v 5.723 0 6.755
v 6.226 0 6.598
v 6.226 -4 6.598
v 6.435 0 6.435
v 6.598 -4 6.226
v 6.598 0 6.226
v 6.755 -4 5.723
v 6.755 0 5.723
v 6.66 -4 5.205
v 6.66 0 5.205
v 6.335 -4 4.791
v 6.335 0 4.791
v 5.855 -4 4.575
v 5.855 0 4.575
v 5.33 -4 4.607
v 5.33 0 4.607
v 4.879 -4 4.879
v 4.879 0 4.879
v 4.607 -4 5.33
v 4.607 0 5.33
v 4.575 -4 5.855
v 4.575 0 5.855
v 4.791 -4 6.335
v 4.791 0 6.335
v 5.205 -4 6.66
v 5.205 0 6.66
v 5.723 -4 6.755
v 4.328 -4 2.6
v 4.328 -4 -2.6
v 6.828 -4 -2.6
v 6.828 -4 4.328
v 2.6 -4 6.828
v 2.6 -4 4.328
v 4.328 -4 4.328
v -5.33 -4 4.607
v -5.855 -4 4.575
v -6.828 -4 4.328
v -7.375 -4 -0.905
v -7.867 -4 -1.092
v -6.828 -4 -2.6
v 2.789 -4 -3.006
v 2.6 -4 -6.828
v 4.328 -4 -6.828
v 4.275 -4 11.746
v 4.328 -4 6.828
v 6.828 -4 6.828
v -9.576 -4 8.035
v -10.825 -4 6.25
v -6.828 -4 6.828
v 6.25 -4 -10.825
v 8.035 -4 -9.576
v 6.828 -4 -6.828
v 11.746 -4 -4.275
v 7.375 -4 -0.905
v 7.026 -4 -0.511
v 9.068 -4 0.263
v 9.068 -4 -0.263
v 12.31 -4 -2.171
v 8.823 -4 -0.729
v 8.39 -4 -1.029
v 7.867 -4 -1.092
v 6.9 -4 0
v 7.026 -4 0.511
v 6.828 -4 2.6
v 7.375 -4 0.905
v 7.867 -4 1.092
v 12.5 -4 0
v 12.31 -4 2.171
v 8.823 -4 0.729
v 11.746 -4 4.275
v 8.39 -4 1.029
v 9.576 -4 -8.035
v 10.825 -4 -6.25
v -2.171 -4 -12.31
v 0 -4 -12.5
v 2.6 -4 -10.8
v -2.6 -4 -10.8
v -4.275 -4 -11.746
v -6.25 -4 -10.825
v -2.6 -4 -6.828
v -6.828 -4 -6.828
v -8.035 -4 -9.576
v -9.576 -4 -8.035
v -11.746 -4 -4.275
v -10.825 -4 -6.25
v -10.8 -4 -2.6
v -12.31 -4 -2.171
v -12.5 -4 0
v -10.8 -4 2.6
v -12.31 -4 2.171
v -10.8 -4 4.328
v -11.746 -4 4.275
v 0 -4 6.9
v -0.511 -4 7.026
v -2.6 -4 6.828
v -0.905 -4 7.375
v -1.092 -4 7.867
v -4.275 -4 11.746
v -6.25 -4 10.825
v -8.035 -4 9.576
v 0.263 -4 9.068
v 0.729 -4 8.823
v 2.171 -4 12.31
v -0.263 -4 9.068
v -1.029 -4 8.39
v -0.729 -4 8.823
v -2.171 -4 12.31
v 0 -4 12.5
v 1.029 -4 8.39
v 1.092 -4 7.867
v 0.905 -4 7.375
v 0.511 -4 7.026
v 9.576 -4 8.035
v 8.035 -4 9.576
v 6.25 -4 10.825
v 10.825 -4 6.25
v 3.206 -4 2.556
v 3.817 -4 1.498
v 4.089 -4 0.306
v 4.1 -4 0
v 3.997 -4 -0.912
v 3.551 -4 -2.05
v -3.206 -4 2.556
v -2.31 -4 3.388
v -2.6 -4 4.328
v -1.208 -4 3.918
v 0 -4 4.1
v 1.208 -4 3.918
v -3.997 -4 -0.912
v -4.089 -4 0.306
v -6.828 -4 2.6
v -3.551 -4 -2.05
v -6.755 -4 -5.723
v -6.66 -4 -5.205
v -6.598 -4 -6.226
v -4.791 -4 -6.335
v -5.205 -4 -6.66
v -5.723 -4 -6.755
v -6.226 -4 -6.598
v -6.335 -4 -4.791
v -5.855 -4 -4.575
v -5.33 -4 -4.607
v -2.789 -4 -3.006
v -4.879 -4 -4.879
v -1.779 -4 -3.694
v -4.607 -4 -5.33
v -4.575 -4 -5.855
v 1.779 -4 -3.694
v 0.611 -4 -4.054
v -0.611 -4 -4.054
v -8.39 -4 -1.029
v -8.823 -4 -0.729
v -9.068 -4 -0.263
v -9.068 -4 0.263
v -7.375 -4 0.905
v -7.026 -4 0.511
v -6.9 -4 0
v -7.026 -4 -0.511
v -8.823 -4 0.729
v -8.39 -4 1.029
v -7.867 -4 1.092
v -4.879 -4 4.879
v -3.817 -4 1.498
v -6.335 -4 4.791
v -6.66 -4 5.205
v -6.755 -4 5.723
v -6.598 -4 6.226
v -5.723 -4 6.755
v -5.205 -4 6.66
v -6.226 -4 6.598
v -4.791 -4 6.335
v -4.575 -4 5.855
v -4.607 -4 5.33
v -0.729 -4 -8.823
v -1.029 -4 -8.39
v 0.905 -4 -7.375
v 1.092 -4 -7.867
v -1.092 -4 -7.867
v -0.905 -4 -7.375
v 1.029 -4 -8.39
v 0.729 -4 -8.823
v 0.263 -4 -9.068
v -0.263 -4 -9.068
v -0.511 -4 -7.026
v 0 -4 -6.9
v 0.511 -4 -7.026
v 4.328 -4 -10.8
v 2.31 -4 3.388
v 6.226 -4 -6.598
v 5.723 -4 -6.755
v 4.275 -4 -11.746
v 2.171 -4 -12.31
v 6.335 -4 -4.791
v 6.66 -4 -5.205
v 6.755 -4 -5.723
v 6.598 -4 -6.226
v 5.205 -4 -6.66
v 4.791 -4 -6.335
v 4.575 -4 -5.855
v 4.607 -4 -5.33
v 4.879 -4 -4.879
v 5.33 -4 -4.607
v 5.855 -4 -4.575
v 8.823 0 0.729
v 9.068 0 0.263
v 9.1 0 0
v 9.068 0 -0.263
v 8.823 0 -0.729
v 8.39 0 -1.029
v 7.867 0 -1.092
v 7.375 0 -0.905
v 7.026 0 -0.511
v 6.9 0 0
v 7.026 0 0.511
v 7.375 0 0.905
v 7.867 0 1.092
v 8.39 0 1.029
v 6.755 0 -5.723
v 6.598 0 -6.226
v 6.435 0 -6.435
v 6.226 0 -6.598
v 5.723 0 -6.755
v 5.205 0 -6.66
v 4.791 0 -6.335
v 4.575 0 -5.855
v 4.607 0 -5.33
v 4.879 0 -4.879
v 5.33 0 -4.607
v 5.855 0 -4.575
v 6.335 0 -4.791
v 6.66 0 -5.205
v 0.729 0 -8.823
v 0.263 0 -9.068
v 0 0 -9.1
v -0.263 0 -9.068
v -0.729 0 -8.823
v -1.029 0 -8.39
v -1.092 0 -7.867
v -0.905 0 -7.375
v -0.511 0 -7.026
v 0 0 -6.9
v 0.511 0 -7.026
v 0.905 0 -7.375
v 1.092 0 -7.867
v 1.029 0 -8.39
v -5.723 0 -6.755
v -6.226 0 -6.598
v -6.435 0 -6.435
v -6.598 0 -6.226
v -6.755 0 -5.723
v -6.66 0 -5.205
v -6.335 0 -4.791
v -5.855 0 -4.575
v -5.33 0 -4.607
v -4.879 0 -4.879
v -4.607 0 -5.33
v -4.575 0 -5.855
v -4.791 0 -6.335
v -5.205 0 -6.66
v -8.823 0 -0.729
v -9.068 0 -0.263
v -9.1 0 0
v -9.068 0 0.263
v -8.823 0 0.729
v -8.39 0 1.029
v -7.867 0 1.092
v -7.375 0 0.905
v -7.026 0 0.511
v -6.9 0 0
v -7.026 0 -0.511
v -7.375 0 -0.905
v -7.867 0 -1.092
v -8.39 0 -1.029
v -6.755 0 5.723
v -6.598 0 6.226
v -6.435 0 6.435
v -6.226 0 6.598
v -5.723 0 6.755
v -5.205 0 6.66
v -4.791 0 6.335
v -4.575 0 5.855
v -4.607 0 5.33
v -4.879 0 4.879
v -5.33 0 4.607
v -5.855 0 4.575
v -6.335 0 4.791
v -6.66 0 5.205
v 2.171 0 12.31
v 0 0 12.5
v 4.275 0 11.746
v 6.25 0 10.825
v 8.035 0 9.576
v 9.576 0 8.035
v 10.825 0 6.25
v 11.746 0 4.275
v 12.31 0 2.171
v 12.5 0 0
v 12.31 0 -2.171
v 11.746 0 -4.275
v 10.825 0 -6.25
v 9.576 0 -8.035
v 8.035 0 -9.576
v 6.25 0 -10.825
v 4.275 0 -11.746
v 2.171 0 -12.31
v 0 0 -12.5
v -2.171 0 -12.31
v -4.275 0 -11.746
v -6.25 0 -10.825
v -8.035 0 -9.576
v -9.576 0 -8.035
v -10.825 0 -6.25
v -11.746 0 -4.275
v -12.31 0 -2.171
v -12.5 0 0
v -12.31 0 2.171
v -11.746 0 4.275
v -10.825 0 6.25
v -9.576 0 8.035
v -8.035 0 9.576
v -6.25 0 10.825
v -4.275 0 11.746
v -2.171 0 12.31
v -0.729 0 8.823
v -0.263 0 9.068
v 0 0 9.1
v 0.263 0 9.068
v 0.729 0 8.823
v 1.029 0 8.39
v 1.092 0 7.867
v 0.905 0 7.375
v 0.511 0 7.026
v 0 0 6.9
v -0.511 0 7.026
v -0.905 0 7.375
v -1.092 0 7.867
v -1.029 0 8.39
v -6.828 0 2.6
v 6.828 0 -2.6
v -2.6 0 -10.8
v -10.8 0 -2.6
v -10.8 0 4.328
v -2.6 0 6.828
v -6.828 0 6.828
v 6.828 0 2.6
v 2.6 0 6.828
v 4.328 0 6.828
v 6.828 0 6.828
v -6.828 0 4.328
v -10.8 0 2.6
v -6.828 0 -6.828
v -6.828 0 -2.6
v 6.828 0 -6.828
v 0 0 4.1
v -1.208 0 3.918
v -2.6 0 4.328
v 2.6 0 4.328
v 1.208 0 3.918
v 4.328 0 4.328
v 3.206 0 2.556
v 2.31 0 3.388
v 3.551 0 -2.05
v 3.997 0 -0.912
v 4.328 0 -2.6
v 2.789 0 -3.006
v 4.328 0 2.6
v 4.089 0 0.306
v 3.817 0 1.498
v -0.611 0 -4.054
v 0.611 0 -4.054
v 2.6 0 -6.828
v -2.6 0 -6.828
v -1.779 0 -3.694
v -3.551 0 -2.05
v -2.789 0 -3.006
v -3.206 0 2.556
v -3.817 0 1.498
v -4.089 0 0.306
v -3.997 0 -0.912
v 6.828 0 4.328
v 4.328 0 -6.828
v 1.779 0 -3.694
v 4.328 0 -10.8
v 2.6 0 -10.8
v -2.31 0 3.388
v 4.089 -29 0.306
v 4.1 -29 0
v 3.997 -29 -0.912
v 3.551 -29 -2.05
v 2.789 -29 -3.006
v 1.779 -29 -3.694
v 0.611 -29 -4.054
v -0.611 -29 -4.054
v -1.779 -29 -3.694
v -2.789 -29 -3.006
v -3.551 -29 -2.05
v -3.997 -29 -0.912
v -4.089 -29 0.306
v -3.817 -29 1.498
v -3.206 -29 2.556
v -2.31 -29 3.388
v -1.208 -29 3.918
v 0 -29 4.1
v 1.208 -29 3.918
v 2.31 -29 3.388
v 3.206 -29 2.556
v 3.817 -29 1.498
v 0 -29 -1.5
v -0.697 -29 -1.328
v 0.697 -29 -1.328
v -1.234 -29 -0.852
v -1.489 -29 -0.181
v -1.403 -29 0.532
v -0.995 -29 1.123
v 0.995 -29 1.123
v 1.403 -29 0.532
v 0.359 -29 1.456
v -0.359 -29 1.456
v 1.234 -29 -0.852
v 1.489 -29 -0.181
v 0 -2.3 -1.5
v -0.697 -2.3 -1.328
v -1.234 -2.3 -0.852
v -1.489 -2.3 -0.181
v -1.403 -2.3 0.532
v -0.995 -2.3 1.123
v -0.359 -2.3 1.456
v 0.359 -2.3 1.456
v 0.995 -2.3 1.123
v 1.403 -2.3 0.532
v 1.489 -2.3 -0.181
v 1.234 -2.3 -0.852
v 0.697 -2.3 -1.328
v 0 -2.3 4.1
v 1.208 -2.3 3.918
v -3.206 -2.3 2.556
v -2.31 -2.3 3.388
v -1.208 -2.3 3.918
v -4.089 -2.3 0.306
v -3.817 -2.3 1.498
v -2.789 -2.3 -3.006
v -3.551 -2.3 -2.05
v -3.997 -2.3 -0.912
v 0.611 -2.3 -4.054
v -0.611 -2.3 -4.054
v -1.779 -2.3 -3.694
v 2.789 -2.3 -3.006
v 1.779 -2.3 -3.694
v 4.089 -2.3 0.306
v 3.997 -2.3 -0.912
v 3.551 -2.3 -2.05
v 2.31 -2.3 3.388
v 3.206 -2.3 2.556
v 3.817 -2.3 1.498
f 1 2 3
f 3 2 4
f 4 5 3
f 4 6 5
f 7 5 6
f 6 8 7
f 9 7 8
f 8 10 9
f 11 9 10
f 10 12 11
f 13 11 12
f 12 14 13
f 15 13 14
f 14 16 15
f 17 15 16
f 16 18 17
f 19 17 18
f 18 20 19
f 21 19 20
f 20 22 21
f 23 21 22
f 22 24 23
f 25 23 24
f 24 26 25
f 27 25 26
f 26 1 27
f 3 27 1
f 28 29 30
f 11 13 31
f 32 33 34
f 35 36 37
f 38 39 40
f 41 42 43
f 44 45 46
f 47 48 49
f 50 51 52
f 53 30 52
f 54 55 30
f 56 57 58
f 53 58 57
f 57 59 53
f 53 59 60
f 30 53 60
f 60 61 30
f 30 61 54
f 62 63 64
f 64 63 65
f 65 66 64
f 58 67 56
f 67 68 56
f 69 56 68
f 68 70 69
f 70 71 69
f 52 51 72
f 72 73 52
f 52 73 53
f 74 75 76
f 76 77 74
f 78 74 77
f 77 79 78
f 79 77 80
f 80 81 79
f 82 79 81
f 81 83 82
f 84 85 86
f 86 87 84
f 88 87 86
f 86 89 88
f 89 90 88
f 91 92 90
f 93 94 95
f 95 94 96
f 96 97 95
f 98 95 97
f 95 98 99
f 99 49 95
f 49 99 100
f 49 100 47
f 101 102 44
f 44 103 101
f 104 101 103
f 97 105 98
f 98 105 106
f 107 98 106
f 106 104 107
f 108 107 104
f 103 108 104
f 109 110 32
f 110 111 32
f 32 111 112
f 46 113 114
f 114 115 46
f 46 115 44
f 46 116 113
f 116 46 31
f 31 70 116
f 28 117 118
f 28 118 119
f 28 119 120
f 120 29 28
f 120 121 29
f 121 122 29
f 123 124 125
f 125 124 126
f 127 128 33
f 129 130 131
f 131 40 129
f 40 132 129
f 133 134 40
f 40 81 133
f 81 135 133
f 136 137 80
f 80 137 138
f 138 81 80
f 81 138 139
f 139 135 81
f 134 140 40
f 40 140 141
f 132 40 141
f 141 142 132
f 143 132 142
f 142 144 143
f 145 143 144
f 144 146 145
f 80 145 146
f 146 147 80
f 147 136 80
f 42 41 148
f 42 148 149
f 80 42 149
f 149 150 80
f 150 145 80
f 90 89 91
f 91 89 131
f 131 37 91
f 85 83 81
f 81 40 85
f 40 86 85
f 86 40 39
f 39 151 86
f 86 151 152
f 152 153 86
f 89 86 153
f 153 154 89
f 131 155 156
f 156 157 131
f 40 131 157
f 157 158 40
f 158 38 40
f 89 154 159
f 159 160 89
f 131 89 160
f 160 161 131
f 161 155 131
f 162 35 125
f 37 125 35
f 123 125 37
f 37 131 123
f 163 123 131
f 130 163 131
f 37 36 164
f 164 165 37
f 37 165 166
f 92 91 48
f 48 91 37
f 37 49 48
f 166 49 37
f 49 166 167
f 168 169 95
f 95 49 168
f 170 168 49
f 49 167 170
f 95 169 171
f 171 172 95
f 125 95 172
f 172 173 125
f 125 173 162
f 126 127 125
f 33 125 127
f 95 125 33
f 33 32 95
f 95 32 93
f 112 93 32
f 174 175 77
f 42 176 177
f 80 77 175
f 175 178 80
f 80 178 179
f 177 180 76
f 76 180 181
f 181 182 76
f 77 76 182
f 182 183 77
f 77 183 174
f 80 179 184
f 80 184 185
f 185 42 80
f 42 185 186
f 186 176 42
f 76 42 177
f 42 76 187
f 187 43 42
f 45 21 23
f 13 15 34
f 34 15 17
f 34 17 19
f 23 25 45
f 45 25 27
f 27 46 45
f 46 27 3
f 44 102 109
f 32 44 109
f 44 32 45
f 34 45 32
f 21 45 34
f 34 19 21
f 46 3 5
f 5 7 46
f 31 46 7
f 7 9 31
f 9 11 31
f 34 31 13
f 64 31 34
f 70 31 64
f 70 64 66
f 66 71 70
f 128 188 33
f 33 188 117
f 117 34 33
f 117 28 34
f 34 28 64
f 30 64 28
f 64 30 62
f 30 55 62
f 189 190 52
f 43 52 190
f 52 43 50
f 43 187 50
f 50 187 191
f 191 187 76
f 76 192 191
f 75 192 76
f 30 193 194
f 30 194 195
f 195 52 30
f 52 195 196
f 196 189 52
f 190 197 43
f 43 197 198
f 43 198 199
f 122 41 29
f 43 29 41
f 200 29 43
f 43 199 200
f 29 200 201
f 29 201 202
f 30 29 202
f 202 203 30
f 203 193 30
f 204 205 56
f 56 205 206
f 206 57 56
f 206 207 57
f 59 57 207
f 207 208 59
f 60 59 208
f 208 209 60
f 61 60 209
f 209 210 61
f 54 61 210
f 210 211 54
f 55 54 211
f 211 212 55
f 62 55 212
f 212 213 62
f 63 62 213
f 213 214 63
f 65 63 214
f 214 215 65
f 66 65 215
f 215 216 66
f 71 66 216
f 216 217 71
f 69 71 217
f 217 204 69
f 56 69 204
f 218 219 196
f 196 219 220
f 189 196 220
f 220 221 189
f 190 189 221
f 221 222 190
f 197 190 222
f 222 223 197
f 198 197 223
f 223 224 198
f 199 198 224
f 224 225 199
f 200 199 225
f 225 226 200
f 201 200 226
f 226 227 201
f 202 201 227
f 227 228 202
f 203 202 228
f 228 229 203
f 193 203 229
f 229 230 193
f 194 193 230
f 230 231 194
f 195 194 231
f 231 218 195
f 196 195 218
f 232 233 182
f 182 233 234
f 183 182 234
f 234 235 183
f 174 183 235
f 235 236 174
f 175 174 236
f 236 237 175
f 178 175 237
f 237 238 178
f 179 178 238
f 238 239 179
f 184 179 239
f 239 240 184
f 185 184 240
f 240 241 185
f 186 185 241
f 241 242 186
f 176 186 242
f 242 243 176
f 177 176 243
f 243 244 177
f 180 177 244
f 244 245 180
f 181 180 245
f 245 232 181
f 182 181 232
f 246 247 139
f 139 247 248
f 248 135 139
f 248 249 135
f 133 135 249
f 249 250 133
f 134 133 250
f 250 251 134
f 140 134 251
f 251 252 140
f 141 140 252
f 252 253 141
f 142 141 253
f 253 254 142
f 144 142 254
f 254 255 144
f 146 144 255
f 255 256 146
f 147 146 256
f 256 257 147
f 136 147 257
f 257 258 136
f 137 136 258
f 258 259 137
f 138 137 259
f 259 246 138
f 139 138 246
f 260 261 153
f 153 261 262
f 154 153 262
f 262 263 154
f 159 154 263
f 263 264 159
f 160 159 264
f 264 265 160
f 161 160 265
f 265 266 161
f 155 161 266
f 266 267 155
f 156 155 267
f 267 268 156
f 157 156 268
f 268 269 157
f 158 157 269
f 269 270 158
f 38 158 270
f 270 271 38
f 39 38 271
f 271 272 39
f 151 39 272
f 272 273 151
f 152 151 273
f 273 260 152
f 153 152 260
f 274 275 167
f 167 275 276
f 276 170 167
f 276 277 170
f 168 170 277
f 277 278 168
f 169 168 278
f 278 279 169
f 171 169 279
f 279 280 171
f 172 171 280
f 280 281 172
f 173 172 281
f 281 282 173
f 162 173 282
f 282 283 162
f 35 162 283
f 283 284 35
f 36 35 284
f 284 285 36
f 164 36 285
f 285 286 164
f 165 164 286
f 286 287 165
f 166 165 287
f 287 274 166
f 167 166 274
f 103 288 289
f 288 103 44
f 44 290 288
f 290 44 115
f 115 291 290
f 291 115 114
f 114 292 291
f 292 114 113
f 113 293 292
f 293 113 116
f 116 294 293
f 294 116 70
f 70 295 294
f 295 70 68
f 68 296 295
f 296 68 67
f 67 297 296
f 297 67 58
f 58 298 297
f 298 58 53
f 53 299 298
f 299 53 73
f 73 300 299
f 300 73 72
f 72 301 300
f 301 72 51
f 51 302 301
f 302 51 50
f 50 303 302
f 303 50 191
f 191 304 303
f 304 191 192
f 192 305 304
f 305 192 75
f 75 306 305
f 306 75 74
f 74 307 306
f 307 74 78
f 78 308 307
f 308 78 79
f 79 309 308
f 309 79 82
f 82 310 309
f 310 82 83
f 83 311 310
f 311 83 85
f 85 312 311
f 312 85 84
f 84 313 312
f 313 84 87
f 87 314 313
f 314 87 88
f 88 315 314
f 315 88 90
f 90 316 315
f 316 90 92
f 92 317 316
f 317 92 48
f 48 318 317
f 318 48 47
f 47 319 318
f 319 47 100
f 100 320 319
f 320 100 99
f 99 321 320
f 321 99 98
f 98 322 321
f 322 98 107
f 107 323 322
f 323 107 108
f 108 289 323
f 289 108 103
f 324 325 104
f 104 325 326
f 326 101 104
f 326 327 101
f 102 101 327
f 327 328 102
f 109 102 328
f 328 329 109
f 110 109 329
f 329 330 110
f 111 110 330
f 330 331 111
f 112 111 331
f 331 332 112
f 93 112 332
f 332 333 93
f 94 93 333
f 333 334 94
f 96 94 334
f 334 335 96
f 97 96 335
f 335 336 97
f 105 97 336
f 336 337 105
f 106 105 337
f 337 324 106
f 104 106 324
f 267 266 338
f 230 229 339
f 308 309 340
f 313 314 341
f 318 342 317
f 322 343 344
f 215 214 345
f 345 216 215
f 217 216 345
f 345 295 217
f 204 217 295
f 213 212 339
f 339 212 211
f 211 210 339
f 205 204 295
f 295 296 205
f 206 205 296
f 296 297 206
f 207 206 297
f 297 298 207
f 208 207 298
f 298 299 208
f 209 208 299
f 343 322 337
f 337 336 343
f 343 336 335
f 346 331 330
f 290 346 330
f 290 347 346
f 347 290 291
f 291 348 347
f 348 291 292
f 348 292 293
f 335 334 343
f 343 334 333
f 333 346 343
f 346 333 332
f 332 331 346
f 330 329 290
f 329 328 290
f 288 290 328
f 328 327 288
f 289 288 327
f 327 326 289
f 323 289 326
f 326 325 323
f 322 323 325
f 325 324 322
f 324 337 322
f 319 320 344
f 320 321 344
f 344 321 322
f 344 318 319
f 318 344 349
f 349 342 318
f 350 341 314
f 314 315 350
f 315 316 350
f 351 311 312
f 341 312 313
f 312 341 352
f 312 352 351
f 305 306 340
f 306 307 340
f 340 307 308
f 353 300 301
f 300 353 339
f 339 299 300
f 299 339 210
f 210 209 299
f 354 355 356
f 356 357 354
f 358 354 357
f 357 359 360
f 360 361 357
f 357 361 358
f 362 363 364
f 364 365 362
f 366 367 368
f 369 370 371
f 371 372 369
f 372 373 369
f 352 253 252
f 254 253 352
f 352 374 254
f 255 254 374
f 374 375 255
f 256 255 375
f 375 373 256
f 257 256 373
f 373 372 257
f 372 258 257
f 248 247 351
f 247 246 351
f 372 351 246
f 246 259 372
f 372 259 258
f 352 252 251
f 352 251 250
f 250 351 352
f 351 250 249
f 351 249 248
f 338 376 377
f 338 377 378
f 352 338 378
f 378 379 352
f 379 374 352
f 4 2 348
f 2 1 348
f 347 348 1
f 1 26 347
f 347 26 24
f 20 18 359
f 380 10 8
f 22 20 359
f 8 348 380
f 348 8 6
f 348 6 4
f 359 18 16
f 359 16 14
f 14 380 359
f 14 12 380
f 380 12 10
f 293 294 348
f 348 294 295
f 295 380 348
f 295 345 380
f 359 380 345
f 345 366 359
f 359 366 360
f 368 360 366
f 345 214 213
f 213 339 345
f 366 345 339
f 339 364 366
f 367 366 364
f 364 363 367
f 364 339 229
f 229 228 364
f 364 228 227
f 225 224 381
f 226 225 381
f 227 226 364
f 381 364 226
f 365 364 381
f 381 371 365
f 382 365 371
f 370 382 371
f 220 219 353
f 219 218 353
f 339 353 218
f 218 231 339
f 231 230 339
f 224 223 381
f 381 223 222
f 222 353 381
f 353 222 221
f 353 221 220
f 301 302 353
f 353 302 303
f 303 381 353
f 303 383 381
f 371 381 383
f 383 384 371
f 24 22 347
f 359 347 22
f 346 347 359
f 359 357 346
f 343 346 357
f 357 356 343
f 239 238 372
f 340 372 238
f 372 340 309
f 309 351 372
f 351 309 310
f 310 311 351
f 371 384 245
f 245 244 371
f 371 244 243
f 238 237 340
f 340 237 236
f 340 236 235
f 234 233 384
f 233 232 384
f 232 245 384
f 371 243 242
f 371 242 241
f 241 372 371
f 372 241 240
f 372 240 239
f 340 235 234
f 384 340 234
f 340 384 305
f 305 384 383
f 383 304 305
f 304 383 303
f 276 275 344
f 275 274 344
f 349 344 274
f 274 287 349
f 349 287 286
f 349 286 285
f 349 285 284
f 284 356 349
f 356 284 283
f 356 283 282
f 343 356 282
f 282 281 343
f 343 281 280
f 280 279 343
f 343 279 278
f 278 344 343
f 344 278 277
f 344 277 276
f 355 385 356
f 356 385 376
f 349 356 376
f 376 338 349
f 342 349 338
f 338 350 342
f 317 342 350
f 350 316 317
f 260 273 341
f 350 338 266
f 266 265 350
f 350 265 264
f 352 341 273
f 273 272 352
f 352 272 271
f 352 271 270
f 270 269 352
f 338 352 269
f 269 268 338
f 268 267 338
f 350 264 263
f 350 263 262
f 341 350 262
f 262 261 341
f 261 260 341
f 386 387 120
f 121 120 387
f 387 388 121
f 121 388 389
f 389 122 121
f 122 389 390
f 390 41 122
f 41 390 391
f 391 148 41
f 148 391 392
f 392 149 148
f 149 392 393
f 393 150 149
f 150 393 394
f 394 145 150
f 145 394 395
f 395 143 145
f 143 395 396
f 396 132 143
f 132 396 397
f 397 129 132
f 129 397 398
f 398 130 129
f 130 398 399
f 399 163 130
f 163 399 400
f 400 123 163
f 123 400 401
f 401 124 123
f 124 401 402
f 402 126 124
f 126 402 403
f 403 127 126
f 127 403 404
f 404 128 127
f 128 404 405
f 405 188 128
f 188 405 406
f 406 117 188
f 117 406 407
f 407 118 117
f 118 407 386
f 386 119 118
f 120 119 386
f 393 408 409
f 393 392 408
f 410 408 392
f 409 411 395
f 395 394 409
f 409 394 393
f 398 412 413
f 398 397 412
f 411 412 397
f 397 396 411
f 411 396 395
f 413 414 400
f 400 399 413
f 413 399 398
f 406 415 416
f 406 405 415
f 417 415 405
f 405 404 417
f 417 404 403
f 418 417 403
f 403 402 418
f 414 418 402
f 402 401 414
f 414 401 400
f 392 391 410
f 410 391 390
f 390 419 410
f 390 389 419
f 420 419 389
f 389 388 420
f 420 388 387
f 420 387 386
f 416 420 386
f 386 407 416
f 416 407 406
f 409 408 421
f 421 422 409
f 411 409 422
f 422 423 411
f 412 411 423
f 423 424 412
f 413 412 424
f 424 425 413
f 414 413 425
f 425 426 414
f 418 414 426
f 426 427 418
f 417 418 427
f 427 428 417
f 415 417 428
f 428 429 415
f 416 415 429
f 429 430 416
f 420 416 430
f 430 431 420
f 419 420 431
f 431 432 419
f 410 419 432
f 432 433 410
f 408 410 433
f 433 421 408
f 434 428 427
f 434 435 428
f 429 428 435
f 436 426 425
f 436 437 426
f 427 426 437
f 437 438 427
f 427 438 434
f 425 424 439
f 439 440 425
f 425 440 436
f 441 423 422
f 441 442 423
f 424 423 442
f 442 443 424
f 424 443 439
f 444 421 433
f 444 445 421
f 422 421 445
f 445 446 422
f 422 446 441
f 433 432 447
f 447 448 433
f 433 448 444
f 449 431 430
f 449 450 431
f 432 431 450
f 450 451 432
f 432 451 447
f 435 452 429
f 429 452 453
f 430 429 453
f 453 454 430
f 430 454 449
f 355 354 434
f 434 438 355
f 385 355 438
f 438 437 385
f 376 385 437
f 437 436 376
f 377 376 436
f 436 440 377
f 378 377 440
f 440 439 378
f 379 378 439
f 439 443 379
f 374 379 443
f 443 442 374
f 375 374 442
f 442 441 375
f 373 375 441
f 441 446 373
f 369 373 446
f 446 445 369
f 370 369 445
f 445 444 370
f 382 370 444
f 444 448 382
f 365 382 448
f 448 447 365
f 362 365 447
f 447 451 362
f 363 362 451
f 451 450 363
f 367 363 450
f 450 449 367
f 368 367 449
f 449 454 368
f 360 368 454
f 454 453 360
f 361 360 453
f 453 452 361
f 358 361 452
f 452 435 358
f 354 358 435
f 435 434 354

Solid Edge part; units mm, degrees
sketch "Sketch1" plane through (0, 0, 0) normal (0, -1, 0) x (1, 0, 0)
  circle A0 centre (0, 0) radius 12.5
extrude "Protrusion1" add sketch "Sketch1" along normal blind 4
hole "Bohrung_1" at (0, -4, 8) direction (0, 1, 0) diameter 2.2 end through all
pattern_circular "Pattern1" count 8 over 360 about axis through (0, -4, 0) along (0, -1, 0) of "Bohrung_1"
sketch "Sketch2" plane through (0, -4, 0) normal (0, -1, 0) x (1, 0, 0)
  circle A0 centre (0, 0) radius 4.1
extrude "Extrusionsausprägung_2" add sketch "Sketch2" along normal blind 25
hole "Bohrung_2" at (0, -29, 0) direction (0, 1, 0) diameter 3 end through all
hole "Bohrung_3" at (0, 0, 0) direction (0, -1, 0) diameter 8.2 depth 2.3
